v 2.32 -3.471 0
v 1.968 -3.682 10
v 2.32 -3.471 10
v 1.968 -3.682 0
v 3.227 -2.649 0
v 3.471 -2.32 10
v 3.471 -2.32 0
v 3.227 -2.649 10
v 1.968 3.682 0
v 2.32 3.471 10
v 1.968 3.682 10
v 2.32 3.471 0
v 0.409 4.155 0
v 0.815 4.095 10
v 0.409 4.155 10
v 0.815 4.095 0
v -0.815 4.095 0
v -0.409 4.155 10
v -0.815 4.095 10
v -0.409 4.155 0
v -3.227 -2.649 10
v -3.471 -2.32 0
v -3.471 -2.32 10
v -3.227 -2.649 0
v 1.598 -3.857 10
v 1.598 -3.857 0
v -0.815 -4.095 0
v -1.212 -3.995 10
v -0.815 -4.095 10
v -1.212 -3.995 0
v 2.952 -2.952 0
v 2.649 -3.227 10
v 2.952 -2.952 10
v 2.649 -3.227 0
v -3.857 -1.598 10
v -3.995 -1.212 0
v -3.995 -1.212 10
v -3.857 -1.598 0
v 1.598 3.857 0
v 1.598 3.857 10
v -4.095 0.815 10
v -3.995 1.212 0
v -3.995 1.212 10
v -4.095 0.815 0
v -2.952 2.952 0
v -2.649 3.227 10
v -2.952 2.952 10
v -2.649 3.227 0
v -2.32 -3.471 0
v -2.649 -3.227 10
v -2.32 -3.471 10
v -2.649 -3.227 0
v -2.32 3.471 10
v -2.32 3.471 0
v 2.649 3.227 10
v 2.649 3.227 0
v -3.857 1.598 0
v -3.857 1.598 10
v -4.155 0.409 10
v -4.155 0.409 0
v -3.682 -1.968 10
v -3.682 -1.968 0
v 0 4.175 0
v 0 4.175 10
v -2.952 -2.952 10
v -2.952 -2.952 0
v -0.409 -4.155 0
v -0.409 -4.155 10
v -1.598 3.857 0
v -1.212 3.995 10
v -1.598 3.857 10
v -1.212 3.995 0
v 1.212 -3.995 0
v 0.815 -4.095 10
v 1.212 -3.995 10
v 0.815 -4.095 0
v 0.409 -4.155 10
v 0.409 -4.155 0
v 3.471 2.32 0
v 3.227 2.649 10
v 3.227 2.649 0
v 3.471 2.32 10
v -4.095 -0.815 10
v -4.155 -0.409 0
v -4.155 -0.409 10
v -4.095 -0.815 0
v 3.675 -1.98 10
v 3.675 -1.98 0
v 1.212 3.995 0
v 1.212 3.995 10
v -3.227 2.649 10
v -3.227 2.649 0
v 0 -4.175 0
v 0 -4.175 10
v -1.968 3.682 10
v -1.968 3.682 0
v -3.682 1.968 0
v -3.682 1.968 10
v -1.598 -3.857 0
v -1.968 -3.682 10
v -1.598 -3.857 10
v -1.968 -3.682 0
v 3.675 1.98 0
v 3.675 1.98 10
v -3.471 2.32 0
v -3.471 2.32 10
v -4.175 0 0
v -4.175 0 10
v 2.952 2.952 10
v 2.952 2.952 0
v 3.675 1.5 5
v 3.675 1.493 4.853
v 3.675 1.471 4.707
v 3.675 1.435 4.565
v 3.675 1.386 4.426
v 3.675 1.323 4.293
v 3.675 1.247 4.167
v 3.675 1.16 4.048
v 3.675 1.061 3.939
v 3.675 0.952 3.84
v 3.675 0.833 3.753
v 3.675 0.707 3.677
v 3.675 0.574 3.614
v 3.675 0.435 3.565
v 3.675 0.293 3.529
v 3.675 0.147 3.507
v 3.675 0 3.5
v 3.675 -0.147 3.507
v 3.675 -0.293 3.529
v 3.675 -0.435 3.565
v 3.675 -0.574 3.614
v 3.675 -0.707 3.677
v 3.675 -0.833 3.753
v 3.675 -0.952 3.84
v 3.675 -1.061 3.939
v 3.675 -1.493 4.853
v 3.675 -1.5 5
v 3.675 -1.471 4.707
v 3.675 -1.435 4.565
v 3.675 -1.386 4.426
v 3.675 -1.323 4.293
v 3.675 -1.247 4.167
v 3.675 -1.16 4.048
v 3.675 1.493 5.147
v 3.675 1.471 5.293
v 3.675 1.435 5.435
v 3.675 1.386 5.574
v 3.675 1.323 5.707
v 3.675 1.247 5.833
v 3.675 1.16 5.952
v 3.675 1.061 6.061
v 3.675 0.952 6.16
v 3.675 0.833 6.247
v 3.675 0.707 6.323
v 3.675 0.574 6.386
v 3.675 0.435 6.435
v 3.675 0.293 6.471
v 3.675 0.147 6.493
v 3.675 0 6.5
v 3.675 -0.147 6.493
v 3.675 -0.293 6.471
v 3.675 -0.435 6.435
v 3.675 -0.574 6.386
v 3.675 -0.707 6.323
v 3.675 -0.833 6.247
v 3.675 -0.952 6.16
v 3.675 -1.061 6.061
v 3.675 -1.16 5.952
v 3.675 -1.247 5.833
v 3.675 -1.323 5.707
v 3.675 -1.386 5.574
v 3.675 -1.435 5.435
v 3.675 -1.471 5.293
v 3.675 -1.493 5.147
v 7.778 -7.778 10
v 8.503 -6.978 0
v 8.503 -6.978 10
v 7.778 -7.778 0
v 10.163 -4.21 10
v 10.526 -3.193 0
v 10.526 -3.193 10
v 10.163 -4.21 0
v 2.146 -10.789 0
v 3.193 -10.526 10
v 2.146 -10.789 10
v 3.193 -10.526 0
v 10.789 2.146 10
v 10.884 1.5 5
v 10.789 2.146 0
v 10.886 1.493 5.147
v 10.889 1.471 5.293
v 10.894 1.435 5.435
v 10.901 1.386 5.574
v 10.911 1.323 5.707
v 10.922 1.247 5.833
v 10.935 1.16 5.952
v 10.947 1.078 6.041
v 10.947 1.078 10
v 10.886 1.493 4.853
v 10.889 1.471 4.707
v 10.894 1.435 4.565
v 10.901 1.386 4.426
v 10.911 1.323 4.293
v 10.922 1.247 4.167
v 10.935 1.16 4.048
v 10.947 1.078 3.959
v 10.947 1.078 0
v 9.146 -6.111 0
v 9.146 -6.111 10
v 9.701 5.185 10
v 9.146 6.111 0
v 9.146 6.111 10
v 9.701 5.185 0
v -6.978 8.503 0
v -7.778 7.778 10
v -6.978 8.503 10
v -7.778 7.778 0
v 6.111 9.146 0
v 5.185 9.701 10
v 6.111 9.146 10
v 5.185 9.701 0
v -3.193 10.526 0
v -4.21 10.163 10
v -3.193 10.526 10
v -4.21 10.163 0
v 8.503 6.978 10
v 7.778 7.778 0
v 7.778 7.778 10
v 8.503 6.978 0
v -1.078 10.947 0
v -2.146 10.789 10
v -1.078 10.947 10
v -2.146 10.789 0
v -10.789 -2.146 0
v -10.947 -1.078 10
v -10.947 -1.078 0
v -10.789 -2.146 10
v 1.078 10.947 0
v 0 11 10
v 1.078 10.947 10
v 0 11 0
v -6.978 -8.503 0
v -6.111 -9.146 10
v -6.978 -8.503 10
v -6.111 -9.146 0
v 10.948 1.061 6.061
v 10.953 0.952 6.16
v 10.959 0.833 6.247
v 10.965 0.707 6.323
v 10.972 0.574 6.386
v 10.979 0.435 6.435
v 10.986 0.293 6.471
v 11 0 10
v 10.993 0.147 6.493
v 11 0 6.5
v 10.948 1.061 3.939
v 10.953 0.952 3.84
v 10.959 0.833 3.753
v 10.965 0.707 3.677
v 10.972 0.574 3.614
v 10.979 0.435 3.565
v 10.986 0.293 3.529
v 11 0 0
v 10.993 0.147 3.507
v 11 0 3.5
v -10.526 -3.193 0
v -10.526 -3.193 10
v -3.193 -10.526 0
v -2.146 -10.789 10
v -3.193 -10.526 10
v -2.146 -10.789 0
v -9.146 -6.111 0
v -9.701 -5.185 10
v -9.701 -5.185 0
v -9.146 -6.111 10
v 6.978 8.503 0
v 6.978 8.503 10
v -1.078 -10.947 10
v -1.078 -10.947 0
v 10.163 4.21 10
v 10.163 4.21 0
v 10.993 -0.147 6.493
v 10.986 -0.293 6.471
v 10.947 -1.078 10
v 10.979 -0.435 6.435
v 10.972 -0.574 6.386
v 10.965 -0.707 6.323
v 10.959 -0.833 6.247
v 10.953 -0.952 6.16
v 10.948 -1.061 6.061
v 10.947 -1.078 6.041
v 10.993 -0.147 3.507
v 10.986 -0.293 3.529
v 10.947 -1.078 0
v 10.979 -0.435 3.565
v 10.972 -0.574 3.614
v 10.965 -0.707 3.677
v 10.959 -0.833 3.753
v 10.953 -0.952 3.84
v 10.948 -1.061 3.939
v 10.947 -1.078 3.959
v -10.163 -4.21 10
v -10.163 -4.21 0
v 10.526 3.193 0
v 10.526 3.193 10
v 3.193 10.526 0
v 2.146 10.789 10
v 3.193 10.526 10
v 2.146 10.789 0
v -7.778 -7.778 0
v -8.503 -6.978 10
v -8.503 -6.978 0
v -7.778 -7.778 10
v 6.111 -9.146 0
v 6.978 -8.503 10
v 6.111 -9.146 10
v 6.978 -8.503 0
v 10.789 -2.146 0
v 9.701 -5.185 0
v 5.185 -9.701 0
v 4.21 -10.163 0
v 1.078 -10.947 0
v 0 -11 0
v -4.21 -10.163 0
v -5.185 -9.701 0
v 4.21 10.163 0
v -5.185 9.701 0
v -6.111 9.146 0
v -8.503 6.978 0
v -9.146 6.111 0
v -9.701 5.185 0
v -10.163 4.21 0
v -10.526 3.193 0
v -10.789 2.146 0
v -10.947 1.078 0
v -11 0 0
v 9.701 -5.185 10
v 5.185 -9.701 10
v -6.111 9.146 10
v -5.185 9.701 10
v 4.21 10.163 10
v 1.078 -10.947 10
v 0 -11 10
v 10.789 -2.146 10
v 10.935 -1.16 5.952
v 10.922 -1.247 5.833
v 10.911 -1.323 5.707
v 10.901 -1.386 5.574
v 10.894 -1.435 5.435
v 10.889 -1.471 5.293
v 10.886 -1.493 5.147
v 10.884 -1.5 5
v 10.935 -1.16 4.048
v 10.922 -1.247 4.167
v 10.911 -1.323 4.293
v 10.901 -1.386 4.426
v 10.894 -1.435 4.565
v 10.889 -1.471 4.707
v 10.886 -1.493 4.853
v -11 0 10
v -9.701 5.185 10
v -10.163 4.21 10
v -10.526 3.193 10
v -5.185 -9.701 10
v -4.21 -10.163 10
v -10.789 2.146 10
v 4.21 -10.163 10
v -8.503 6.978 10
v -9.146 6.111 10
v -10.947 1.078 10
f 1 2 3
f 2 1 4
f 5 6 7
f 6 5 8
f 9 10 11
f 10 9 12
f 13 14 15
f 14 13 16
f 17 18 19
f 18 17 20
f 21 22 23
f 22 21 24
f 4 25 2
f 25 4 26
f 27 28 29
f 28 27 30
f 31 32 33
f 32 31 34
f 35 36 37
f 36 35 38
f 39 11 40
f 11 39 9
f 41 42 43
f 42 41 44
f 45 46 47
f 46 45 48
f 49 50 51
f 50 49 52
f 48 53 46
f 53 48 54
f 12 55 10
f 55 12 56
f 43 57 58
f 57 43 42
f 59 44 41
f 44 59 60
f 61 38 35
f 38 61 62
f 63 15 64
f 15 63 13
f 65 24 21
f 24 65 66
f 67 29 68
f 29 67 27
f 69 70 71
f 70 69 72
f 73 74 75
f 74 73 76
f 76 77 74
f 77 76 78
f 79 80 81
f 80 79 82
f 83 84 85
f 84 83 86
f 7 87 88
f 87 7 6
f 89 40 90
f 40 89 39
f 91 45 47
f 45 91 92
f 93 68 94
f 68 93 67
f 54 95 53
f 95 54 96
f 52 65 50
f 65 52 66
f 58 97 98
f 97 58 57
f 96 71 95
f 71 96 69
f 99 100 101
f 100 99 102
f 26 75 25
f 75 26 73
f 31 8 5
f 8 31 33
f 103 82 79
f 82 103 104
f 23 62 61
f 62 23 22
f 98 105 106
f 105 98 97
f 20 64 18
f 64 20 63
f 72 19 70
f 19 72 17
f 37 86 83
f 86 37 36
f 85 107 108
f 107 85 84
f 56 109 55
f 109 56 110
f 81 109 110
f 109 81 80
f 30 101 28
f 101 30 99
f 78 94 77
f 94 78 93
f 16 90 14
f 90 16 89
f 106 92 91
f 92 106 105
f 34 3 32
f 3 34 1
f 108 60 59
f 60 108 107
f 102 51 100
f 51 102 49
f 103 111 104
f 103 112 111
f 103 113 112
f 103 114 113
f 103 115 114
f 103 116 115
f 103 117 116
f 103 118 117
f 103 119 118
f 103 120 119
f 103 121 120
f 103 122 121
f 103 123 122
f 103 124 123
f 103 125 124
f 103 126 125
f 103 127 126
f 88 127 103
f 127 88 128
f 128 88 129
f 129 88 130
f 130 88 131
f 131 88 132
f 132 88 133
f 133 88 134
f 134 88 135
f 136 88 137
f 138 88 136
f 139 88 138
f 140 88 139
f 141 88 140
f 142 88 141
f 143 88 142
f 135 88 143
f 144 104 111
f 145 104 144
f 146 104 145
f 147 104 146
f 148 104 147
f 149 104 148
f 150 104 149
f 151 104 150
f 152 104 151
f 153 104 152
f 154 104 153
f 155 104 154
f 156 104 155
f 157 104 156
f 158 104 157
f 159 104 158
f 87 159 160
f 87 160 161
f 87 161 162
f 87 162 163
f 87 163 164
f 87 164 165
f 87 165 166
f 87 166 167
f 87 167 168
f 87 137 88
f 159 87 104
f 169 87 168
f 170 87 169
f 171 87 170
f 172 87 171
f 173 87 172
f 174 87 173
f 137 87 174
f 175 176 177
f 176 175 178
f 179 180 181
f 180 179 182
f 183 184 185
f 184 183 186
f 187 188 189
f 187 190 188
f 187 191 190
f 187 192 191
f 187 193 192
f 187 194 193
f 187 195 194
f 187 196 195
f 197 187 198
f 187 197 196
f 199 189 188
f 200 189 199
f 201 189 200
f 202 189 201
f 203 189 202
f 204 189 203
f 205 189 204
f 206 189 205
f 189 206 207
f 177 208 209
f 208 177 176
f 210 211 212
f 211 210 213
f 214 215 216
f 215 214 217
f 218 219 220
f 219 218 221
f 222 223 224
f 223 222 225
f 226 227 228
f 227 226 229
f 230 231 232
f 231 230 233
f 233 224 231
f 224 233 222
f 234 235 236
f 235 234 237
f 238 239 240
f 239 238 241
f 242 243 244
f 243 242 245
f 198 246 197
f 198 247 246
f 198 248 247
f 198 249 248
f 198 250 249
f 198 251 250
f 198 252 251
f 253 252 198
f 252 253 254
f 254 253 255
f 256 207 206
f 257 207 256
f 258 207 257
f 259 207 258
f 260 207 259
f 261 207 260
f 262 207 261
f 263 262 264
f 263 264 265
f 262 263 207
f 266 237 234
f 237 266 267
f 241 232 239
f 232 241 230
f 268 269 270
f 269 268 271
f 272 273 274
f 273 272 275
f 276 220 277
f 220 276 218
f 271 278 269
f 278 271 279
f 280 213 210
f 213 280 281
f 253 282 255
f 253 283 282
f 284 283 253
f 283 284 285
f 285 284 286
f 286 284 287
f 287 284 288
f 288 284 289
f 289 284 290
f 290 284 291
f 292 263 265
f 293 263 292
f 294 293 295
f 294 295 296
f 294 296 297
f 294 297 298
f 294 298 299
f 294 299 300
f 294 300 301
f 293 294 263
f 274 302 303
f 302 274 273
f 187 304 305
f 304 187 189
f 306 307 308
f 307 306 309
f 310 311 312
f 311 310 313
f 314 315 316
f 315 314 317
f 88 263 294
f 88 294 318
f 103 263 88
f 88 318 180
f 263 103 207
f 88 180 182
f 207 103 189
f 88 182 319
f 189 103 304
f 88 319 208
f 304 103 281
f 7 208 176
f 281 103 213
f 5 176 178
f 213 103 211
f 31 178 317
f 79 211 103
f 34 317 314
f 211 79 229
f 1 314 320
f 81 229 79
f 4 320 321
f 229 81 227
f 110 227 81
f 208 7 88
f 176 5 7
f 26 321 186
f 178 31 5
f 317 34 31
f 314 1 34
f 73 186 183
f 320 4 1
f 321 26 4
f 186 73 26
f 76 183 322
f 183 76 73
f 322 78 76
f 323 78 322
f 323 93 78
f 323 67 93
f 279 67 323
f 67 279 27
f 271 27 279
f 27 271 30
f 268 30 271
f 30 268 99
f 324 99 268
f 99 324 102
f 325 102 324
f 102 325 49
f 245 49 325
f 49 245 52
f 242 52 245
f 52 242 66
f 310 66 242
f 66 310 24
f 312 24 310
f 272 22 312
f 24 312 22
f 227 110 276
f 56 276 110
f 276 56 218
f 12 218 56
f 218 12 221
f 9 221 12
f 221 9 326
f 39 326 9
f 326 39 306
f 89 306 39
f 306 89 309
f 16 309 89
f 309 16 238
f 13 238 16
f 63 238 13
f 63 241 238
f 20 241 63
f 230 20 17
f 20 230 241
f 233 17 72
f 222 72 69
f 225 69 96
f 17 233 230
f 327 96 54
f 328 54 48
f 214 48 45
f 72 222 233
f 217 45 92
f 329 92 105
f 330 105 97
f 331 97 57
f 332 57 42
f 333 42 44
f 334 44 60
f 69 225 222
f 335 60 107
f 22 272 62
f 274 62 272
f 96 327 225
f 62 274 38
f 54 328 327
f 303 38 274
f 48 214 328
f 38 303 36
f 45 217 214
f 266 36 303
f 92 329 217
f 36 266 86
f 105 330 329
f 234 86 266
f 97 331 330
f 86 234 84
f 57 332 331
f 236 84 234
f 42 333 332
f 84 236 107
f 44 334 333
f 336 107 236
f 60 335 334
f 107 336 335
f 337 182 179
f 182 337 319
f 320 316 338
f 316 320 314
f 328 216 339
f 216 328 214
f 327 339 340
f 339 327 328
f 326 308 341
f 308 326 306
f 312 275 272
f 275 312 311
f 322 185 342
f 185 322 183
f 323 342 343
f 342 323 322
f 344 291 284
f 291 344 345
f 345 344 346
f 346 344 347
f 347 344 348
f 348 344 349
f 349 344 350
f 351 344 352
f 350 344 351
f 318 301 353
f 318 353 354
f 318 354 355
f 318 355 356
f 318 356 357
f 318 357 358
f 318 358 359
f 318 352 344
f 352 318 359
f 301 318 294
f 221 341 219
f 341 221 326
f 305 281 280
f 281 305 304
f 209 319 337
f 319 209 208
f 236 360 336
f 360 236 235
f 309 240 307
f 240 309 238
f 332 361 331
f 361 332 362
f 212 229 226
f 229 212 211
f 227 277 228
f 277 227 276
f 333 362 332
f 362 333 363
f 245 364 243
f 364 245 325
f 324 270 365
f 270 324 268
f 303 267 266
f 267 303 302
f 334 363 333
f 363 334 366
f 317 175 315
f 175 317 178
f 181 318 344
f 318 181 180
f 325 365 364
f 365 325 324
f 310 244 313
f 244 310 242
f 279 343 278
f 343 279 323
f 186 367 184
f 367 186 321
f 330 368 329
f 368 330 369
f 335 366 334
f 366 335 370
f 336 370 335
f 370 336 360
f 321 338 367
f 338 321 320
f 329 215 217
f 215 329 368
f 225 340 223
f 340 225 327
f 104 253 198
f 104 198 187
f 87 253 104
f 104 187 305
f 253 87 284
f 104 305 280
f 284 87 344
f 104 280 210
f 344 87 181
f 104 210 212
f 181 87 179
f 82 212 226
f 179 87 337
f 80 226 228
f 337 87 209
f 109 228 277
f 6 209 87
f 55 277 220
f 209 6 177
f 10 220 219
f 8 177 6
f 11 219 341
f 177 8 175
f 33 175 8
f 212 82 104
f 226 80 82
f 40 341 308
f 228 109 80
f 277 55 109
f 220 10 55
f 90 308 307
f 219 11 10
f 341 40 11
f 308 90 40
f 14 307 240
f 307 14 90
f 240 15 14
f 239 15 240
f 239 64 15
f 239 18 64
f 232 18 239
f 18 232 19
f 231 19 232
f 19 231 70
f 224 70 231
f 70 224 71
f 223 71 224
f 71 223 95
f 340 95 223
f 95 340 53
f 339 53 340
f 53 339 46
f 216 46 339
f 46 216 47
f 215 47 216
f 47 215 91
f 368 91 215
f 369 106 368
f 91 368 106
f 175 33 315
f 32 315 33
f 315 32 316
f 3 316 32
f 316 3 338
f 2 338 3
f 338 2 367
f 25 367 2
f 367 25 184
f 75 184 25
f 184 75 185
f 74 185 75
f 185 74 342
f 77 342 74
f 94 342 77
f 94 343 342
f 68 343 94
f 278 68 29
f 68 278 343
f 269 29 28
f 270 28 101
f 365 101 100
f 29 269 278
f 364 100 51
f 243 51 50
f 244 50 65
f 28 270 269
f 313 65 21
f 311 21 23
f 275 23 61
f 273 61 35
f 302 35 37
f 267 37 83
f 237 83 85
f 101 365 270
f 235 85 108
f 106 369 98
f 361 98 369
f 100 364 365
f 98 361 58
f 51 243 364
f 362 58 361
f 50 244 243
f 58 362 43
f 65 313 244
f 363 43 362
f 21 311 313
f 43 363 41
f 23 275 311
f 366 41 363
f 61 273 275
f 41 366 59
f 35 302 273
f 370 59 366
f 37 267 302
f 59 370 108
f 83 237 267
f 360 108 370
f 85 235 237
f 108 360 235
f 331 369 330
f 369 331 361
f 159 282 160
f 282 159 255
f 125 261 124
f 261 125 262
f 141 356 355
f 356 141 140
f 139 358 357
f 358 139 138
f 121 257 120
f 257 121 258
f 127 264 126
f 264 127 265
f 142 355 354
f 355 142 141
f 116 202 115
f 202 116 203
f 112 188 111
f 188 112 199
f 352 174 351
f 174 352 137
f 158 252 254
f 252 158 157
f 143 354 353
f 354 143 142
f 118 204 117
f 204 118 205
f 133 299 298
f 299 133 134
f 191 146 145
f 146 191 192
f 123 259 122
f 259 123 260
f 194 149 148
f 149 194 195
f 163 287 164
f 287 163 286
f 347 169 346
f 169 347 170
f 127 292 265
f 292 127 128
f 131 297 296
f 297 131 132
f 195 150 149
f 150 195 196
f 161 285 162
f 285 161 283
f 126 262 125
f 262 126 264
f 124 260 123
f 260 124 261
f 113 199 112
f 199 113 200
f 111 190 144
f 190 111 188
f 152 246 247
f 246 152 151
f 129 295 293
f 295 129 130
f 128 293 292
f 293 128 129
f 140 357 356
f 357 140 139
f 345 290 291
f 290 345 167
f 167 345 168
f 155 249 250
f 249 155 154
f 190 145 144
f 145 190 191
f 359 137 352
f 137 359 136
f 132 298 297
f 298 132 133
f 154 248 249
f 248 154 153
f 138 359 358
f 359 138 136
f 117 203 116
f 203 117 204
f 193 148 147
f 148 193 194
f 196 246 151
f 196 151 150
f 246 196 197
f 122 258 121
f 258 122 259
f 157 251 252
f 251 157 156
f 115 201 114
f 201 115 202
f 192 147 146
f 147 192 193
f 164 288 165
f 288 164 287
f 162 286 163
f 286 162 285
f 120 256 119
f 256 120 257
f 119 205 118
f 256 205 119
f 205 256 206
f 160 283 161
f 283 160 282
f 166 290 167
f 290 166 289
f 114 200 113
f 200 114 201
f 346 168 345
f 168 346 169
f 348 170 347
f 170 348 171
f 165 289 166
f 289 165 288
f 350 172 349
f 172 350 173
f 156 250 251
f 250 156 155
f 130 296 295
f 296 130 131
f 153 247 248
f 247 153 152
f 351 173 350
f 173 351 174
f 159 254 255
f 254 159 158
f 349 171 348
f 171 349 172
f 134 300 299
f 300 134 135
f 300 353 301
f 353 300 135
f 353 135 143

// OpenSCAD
// Gen-DF — shaft collar with D-flat bore (set screw bears on the flat); print x4
include <parameters.scad>;
$fn = 64;
// D-flat keyed bore: flat faces +X (angle 0 = magnet pocket 0 = index notch)
module dflat_bore(h) {
    intersection() {
        cylinder(d=shaft_bore, h=h);
        translate([-shaft_bore, -shaft_bore, 0]) cube([shaft_bore + dflat_x, 2*shaft_bore, h]);
    }
}

od = 22; h = collar_h; set_d = 3.0;
difference() {
    cylinder(d=od, h=h);
    translate([0, 0, -0.1]) dflat_bore(h + 0.2);
    translate([0, 0, h/2]) rotate([0, 90, 0]) cylinder(d=set_d, h=od);
}
